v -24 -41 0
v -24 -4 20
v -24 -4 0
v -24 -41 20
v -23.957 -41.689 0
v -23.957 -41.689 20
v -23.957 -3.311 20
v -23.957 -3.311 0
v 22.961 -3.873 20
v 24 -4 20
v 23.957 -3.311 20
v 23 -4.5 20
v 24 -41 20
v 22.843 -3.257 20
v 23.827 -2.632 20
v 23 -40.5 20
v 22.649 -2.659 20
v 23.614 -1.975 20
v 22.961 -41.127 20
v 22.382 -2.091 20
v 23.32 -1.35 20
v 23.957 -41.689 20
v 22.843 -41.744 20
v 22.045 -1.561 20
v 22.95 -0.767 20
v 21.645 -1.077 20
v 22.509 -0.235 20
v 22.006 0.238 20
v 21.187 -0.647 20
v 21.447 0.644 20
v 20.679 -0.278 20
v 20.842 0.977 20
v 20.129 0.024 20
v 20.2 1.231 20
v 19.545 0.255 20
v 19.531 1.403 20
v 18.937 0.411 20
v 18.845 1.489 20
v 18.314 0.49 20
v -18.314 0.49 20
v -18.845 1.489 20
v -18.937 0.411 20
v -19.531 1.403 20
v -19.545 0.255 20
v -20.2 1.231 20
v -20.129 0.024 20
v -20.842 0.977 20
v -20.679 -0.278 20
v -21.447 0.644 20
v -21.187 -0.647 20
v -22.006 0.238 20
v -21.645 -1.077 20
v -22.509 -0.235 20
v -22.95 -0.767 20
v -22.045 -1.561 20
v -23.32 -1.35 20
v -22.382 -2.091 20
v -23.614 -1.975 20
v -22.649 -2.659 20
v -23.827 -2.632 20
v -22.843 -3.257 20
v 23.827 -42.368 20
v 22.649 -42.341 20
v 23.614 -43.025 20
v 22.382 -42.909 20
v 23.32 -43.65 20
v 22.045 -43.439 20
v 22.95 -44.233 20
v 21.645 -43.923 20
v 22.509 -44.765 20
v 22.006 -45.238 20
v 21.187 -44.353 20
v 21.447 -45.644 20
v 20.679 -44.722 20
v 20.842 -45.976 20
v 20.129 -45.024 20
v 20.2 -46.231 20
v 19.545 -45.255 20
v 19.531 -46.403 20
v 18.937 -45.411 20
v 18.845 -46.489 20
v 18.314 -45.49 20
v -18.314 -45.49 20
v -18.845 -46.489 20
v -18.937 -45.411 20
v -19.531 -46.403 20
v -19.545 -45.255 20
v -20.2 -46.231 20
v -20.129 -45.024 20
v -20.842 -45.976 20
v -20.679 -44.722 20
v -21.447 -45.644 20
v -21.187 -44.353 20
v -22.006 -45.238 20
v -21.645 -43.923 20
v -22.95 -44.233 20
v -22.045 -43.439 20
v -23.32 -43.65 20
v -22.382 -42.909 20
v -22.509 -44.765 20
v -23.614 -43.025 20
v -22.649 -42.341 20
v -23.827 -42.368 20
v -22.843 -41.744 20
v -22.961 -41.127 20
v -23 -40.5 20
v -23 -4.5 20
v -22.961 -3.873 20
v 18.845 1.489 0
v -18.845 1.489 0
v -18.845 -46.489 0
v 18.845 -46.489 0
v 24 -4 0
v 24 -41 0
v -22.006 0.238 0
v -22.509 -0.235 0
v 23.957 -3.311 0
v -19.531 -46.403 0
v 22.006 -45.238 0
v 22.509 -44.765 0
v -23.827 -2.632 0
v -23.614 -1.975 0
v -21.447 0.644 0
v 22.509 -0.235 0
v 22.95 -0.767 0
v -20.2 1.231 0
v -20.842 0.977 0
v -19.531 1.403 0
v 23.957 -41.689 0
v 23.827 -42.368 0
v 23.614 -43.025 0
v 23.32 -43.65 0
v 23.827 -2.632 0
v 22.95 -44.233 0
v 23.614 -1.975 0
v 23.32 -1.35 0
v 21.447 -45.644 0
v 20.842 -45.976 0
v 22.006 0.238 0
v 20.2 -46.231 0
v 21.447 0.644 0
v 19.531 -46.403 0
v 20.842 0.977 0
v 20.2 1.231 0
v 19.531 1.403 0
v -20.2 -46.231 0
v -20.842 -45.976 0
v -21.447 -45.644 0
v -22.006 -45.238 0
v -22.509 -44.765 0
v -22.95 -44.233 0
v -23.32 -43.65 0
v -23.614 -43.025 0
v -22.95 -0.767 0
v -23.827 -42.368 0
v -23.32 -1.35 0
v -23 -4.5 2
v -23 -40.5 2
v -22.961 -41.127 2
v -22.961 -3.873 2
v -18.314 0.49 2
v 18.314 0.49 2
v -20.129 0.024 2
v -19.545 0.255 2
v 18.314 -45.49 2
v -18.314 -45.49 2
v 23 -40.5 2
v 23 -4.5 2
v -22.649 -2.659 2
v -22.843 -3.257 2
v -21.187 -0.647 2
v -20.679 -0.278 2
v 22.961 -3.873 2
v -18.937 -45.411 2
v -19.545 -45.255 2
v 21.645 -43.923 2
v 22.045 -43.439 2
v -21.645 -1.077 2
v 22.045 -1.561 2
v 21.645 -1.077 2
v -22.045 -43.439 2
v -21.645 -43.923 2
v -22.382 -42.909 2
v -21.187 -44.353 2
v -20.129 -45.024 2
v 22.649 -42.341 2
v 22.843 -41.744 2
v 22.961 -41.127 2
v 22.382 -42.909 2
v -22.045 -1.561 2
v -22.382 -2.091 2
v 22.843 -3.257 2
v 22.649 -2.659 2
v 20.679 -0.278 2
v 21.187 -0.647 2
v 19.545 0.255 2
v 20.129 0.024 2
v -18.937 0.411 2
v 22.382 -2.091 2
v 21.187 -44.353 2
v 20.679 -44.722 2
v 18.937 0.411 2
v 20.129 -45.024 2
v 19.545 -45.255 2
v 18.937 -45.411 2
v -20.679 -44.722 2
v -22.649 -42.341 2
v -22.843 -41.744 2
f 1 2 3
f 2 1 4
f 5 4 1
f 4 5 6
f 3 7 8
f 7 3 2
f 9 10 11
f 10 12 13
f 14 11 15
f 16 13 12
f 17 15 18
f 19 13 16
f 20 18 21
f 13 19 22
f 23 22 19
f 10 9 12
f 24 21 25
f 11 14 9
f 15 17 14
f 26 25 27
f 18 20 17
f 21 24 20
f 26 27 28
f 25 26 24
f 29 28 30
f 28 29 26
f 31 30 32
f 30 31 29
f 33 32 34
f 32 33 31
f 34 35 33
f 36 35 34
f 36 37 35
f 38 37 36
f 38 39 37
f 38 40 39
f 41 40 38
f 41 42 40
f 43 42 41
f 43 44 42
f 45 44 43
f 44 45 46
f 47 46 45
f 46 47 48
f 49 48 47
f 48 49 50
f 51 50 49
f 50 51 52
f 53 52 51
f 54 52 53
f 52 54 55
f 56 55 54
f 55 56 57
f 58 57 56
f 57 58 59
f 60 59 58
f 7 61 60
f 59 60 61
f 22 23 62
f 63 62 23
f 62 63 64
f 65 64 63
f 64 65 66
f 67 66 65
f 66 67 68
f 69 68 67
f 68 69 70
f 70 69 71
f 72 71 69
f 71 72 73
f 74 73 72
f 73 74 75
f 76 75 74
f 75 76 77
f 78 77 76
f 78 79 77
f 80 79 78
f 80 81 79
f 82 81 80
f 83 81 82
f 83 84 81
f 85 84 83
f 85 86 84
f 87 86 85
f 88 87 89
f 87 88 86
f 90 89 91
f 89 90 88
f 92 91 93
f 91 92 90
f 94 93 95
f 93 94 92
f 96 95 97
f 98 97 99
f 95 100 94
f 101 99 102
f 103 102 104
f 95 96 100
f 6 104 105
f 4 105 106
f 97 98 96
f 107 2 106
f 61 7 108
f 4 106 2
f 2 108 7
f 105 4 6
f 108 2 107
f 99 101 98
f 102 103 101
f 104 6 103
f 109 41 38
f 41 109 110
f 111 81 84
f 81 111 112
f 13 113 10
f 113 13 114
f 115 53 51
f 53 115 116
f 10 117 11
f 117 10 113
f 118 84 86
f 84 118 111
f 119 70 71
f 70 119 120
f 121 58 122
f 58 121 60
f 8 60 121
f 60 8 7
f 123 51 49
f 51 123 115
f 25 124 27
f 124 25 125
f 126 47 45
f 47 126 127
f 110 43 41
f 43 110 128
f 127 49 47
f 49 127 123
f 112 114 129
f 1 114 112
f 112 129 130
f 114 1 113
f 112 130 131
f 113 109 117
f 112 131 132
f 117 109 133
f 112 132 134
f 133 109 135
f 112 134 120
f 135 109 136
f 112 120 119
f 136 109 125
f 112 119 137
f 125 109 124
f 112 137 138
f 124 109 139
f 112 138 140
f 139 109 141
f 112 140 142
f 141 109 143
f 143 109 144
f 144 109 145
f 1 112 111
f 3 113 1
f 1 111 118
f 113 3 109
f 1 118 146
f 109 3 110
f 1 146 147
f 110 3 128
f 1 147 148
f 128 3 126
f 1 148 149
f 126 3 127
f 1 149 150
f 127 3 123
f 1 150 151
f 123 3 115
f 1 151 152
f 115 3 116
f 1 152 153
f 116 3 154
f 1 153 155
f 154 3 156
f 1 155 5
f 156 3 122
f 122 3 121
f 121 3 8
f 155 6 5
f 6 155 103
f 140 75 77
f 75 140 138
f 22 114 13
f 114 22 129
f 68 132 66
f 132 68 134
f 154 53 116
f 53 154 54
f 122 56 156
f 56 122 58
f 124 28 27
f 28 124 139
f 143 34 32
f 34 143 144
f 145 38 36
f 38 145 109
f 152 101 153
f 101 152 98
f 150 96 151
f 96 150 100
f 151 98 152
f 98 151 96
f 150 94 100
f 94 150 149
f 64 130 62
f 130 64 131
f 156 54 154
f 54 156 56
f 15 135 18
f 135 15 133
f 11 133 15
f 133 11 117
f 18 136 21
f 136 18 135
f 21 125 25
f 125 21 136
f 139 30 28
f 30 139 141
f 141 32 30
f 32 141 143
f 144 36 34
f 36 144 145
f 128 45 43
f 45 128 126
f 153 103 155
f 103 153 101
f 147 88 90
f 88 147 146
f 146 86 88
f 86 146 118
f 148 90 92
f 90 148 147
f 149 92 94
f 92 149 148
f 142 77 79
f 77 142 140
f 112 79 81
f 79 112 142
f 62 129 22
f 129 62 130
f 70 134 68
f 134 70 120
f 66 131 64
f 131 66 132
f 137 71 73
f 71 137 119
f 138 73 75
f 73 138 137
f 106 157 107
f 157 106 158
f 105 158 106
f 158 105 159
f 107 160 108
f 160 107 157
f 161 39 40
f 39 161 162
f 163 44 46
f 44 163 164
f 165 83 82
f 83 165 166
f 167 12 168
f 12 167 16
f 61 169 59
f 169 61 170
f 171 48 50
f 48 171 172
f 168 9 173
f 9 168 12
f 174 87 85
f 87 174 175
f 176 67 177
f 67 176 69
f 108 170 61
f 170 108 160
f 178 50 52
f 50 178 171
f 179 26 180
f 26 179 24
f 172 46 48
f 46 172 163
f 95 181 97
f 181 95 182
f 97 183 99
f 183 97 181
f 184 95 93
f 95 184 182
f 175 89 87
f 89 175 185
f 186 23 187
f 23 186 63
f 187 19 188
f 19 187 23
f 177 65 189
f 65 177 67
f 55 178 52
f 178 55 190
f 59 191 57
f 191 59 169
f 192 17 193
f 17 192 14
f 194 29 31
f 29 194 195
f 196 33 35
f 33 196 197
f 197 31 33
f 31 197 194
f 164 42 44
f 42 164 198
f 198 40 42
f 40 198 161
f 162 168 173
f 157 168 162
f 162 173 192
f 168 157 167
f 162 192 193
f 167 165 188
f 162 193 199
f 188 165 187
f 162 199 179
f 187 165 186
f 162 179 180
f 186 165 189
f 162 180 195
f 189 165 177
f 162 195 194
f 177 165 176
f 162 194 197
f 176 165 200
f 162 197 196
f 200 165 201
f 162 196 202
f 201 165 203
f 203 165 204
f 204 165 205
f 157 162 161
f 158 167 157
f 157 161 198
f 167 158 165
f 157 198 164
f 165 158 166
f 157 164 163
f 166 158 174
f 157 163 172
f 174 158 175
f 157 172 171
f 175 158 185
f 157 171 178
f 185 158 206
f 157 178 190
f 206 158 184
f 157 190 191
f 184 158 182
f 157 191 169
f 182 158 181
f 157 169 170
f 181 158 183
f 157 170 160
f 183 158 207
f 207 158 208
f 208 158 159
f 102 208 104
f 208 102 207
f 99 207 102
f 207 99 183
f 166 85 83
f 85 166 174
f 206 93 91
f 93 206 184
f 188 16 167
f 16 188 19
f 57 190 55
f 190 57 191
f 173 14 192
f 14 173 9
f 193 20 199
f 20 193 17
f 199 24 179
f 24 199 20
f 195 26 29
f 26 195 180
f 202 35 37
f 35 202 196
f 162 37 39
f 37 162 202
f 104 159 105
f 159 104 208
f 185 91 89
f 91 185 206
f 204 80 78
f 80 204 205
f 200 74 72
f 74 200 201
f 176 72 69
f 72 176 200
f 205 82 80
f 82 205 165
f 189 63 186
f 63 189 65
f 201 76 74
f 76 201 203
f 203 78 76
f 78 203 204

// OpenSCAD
$fn = 50;


difference() {
	union() {
		translate(v = [0, -22.5000000000, 0]) {
			hull() {
				translate(v = [-18.5000000000, 18.5000000000, 0]) {
					cylinder(h = 20, r = 5.5000000000);
				}
				translate(v = [18.5000000000, 18.5000000000, 0]) {
					cylinder(h = 20, r = 5.5000000000);
				}
				translate(v = [-18.5000000000, -18.5000000000, 0]) {
					cylinder(h = 20, r = 5.5000000000);
				}
				translate(v = [18.5000000000, -18.5000000000, 0]) {
					cylinder(h = 20, r = 5.5000000000);
				}
			}
		}
	}
	union() {
		translate(v = [0, -22.5000000000, 2]) {
			hull() {
				translate(v = [-18.0000000000, 18.0000000000, 0]) {
					cylinder(h = 40, r = 5);
				}
				translate(v = [18.0000000000, 18.0000000000, 0]) {
					cylinder(h = 40, r = 5);
				}
				translate(v = [-18.0000000000, -18.0000000000, 0]) {
					cylinder(h = 40, r = 5);
				}
				translate(v = [18.0000000000, -18.0000000000, 0]) {
					cylinder(h = 40, r = 5);
				}
			}
		}
	}
}
